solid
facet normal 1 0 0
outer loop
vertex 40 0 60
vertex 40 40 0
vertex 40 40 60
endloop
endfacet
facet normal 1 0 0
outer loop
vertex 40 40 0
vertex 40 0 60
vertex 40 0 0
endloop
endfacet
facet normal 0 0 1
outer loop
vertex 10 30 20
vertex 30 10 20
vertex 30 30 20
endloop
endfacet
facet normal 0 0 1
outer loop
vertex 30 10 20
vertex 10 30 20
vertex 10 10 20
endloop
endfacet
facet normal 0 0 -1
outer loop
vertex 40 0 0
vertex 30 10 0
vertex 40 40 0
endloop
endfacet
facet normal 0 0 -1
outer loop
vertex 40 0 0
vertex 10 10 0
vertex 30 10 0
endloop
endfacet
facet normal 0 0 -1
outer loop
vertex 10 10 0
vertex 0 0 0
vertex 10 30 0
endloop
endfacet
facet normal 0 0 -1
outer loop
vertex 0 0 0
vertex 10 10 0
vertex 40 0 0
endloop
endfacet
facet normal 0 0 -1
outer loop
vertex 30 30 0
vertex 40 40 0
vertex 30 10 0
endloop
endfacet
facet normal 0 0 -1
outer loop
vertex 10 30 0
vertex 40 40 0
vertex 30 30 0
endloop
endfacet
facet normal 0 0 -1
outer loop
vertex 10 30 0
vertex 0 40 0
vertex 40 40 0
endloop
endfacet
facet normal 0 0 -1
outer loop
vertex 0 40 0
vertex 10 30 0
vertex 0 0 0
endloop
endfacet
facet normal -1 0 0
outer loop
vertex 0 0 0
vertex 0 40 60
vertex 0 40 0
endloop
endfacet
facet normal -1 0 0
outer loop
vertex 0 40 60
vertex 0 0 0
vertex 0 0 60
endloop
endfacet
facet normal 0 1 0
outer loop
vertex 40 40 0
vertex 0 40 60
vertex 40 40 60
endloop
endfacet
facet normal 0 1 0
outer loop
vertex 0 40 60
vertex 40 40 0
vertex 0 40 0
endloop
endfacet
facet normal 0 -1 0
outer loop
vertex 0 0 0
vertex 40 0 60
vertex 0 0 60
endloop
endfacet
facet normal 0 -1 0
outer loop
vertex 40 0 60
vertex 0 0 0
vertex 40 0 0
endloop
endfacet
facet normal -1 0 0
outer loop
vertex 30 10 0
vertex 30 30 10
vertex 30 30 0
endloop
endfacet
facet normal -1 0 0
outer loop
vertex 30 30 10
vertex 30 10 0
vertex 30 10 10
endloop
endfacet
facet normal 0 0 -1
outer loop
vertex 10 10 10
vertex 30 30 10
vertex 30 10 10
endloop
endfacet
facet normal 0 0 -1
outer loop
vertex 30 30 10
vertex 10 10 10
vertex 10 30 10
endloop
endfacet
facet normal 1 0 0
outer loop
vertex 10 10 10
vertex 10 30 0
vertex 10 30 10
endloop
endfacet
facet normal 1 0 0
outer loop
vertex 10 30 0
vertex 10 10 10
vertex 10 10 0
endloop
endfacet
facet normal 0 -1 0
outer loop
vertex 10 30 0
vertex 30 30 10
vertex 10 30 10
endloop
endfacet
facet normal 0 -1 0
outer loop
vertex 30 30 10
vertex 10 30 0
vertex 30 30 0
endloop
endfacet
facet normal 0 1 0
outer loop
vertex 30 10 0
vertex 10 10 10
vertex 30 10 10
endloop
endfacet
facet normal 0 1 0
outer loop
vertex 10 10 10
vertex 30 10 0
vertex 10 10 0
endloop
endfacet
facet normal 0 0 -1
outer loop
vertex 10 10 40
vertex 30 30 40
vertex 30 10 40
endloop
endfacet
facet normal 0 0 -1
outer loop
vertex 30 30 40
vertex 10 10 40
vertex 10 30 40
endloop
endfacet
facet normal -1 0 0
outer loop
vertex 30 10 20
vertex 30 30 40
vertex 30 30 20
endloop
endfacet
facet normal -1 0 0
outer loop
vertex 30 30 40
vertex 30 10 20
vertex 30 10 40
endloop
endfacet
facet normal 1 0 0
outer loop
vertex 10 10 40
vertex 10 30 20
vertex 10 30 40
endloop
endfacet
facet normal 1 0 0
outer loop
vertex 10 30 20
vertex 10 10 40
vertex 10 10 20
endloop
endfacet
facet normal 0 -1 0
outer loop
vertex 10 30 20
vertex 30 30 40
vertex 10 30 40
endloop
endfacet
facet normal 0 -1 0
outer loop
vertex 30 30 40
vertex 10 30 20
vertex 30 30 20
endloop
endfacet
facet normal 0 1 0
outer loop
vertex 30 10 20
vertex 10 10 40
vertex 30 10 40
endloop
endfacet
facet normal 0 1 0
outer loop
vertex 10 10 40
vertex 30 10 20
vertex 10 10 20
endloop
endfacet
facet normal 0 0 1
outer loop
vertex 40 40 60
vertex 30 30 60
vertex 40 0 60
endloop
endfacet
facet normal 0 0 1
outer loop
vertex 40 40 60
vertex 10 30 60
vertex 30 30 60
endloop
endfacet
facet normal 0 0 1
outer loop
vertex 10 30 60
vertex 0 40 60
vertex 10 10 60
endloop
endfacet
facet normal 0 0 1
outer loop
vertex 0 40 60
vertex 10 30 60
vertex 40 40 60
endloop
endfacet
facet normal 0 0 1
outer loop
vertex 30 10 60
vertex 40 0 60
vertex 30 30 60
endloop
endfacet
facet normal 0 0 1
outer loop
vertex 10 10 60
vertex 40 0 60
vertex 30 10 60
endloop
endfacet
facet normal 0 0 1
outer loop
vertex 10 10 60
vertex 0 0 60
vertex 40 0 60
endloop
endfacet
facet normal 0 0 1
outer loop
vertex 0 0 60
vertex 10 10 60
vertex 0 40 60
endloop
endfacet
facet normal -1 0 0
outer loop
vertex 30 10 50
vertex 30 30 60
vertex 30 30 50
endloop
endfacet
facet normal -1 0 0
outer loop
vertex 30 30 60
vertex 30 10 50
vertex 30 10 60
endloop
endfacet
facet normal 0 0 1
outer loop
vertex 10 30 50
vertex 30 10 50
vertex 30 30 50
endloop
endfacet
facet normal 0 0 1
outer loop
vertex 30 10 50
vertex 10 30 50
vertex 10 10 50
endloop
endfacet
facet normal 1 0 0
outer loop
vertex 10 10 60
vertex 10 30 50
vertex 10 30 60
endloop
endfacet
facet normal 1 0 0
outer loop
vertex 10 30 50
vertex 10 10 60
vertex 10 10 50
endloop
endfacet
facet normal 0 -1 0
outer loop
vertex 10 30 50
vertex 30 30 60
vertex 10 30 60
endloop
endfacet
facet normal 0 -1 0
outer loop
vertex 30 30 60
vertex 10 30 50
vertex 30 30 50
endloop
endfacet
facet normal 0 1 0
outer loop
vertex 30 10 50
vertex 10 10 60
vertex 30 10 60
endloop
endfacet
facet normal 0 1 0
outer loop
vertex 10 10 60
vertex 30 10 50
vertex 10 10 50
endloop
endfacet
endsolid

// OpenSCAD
// Base block
module base_block() {
    // Modified to remove slanted side and reshape into a rectangular block with straight sides
    difference() {
        cube([40, 40, 20]); // Main block
        translate([10, 10, 0]) cube([20, 20, 10]); // Step cutout
    }
}

// Middle block
module middle_block() {
    // Modified to remove slanted side and adjust step-like cutouts
    difference() {
        cube([40, 40, 20]); // Main block
        translate([10, 10, 0]) cube([20, 20, 10]); // Bottom step cutout
        translate([10, 10, 10]) cube([20, 20, 10]); // Top step cutout
    }
}

// Top block
module top_block() {
    // Modified to remove slanted side and adjust step-like cutout on the bottom surface
    difference() {
        cube([40, 40, 20]); // Main block
        translate([10, 10, 10]) cube([20, 20, 10]); // Step cutout
    }
}

// Assemble the model
module flexible_coupling() {
    translate([0, 0, 0]) base_block(); // Layer 3: Base block
    translate([0, 0, 20]) middle_block(); // Layer 2: Middle block
    translate([0, 0, 40]) top_block(); // Layer 1: Top block
}

// Render the model
flexible_coupling();
